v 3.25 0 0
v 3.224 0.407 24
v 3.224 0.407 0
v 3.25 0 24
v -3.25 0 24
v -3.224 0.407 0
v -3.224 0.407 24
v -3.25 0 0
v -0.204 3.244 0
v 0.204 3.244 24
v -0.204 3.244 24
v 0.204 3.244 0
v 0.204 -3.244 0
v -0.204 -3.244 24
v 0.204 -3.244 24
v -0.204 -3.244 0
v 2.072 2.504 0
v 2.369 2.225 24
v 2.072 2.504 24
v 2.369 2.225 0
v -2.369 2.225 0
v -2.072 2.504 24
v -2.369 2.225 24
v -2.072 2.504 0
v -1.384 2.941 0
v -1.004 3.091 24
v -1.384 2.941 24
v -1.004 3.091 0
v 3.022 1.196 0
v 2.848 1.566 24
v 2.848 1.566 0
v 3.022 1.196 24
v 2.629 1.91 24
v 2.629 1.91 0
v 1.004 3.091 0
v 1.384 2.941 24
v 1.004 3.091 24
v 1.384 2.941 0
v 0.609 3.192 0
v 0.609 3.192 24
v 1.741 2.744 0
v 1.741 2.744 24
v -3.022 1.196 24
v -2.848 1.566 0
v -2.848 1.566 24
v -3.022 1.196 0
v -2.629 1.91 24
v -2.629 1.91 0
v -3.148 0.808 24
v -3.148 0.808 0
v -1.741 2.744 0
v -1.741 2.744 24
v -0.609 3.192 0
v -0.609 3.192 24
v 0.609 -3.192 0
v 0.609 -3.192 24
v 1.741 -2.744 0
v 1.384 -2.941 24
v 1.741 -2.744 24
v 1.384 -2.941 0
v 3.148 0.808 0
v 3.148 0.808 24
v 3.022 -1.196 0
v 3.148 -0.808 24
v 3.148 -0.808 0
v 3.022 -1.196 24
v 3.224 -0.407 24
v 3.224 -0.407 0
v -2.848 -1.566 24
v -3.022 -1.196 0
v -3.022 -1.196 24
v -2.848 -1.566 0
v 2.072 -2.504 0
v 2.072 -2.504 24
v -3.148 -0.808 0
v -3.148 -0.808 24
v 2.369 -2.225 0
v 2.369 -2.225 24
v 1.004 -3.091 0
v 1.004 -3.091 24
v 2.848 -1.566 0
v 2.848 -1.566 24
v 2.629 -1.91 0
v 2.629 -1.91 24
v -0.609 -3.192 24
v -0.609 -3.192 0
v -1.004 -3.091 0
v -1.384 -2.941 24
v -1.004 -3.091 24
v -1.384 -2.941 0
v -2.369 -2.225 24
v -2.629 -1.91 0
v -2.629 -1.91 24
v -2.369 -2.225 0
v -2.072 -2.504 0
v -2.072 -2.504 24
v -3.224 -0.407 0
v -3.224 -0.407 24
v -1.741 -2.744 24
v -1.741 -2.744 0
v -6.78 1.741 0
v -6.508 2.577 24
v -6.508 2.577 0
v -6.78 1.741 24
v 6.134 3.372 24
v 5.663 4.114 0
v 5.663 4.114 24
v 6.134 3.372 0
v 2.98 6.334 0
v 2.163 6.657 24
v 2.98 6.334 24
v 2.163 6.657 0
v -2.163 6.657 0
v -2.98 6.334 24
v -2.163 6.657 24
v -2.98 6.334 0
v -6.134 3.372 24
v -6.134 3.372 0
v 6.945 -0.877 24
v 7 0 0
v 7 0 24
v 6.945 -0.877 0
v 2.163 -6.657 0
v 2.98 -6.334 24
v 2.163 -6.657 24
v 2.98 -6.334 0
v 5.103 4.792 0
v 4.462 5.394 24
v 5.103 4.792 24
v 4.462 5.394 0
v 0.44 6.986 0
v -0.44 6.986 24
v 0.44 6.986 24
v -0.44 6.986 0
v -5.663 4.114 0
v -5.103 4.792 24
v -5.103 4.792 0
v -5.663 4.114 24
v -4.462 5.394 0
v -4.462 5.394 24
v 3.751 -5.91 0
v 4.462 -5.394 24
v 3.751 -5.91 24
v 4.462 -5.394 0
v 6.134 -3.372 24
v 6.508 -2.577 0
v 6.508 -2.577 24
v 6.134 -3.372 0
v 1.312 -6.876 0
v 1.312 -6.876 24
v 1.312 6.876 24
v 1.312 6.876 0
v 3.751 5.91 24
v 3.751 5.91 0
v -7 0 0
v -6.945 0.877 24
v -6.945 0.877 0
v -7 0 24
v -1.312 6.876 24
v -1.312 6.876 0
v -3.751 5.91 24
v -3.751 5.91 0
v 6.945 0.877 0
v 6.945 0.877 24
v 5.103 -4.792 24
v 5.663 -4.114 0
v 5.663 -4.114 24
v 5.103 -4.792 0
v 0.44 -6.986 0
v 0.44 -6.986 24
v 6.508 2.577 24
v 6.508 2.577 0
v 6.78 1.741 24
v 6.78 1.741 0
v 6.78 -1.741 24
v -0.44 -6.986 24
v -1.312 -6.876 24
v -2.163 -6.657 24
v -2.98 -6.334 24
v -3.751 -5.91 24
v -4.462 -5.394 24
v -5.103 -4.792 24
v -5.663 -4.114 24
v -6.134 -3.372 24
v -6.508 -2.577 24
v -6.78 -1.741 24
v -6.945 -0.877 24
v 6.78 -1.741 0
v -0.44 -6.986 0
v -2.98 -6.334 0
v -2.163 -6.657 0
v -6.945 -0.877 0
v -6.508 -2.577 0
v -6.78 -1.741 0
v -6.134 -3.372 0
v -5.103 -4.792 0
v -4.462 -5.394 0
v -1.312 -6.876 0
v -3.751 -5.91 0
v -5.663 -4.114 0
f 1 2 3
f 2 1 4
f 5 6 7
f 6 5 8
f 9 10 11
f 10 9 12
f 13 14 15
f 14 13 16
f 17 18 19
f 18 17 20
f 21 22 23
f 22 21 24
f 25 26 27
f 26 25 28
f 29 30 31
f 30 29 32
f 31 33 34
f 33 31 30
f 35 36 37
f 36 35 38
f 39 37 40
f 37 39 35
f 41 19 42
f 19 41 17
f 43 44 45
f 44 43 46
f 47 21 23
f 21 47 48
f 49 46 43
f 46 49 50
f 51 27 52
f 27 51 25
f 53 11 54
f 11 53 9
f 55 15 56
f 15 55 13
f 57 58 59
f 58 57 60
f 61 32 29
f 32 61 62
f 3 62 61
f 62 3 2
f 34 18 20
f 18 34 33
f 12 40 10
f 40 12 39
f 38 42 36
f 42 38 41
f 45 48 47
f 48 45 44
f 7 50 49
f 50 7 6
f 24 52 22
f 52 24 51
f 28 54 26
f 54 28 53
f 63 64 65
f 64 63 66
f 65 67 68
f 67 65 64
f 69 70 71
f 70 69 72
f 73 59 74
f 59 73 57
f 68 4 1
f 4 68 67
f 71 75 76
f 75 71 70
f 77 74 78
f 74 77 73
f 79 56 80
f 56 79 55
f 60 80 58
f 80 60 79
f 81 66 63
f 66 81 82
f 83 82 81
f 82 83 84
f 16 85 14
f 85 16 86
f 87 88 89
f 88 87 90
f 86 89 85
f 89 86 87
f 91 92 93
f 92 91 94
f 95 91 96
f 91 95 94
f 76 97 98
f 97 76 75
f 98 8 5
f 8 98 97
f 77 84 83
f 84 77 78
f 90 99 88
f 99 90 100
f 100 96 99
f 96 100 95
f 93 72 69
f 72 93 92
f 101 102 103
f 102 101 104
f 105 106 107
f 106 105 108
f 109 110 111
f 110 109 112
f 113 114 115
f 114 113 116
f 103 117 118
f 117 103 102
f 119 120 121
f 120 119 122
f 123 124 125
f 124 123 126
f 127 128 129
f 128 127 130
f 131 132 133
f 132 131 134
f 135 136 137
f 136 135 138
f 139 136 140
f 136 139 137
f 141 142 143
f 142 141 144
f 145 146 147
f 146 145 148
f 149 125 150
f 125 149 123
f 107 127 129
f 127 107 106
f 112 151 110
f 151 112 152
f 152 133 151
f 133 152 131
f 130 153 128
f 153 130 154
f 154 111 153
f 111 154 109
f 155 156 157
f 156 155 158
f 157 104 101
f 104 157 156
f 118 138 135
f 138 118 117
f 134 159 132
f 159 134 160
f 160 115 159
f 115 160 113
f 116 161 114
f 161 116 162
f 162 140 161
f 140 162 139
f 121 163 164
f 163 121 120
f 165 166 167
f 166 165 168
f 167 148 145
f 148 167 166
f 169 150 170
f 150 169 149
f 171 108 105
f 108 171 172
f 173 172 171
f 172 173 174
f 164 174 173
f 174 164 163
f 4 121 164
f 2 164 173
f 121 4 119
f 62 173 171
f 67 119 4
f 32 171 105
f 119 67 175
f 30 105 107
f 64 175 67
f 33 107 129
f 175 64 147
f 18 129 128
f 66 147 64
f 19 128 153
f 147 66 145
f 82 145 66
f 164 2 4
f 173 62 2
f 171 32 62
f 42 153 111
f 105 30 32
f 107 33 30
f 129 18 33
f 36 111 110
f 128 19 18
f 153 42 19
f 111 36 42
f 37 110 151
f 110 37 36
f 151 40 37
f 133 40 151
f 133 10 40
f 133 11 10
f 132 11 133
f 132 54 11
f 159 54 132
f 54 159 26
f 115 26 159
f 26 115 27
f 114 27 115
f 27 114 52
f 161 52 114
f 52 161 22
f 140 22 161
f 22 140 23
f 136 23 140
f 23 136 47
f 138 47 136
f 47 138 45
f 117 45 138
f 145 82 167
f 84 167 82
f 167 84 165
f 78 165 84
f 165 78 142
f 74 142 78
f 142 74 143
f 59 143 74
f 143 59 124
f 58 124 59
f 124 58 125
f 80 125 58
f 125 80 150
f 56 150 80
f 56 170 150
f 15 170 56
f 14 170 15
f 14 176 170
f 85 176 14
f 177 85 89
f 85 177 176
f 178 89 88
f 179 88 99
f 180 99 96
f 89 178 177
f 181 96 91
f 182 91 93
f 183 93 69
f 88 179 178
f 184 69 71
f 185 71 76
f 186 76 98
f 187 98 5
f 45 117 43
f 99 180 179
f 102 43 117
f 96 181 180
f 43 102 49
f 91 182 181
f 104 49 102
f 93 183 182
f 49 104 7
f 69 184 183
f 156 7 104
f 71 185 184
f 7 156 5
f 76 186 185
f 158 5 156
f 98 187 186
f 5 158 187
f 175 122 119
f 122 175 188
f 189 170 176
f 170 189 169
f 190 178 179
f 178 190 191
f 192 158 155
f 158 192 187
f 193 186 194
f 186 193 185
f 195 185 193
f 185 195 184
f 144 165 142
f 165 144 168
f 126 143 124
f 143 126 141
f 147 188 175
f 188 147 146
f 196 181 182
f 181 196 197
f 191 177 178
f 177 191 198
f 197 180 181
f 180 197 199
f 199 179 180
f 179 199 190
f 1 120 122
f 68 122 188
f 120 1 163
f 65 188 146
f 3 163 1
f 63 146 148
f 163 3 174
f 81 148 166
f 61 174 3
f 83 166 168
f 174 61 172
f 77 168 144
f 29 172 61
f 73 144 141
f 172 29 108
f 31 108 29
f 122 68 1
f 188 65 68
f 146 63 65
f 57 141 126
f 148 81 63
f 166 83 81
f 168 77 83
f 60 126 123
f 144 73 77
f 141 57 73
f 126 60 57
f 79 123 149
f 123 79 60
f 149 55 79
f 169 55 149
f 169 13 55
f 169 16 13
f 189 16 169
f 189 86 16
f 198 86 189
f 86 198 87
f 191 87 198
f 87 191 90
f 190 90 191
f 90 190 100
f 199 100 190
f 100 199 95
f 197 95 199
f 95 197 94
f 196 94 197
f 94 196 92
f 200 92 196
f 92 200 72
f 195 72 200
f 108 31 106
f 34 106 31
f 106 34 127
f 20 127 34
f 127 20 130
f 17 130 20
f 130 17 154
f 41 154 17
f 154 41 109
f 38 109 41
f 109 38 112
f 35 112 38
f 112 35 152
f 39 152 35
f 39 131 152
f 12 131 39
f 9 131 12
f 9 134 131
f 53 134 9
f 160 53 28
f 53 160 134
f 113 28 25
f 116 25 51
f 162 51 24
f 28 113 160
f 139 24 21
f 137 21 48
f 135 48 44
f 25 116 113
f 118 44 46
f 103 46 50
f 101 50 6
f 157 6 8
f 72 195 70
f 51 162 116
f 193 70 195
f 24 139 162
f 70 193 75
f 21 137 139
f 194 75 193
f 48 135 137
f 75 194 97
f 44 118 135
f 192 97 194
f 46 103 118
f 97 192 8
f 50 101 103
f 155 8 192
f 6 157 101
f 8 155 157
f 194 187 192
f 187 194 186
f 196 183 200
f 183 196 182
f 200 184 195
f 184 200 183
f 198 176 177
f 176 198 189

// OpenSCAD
$fn = 50;


difference() {
	union() {
		cylinder(h = 24, r = 7.0000000000);
	}
	union() {
		translate(v = [0, 0, -100]) {
			cylinder(h = 200, r = 3.2500000000);
		}
		translate(v = [0, 0, -100]) {
			cylinder(h = 200, r = 1.8000000000);
		}
	}
}
